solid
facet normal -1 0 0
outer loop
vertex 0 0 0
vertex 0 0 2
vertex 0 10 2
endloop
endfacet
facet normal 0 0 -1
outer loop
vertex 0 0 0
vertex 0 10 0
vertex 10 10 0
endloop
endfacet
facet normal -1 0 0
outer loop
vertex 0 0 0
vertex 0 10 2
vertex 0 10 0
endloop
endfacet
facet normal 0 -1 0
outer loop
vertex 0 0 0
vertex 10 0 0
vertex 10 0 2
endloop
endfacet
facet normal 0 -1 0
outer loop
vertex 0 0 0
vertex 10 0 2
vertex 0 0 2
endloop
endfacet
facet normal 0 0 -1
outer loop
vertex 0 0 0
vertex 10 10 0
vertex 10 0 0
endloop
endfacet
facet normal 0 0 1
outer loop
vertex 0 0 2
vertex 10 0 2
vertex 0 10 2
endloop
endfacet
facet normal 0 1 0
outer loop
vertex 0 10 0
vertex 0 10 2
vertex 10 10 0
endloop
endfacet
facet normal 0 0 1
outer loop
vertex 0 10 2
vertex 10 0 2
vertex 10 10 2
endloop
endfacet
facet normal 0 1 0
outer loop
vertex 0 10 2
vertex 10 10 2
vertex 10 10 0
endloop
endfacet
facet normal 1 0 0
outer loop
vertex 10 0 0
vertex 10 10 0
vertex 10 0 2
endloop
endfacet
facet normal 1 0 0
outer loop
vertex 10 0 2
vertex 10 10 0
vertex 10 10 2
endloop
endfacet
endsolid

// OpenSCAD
/* Warning, this is a very basic generator with a lot of approximation 
input data : [MQFP, TWX, 10x10x2mm, 44, , C, C04-00071C]
generated by com.zoubworld.electronics.cad.model3d.Basic
Date : Sun Feb 15 10:50:48 CET 2026
*/

//body
color("black")
translate([0,0,0])
cube([10.0,10.0,2.0], center=false);
